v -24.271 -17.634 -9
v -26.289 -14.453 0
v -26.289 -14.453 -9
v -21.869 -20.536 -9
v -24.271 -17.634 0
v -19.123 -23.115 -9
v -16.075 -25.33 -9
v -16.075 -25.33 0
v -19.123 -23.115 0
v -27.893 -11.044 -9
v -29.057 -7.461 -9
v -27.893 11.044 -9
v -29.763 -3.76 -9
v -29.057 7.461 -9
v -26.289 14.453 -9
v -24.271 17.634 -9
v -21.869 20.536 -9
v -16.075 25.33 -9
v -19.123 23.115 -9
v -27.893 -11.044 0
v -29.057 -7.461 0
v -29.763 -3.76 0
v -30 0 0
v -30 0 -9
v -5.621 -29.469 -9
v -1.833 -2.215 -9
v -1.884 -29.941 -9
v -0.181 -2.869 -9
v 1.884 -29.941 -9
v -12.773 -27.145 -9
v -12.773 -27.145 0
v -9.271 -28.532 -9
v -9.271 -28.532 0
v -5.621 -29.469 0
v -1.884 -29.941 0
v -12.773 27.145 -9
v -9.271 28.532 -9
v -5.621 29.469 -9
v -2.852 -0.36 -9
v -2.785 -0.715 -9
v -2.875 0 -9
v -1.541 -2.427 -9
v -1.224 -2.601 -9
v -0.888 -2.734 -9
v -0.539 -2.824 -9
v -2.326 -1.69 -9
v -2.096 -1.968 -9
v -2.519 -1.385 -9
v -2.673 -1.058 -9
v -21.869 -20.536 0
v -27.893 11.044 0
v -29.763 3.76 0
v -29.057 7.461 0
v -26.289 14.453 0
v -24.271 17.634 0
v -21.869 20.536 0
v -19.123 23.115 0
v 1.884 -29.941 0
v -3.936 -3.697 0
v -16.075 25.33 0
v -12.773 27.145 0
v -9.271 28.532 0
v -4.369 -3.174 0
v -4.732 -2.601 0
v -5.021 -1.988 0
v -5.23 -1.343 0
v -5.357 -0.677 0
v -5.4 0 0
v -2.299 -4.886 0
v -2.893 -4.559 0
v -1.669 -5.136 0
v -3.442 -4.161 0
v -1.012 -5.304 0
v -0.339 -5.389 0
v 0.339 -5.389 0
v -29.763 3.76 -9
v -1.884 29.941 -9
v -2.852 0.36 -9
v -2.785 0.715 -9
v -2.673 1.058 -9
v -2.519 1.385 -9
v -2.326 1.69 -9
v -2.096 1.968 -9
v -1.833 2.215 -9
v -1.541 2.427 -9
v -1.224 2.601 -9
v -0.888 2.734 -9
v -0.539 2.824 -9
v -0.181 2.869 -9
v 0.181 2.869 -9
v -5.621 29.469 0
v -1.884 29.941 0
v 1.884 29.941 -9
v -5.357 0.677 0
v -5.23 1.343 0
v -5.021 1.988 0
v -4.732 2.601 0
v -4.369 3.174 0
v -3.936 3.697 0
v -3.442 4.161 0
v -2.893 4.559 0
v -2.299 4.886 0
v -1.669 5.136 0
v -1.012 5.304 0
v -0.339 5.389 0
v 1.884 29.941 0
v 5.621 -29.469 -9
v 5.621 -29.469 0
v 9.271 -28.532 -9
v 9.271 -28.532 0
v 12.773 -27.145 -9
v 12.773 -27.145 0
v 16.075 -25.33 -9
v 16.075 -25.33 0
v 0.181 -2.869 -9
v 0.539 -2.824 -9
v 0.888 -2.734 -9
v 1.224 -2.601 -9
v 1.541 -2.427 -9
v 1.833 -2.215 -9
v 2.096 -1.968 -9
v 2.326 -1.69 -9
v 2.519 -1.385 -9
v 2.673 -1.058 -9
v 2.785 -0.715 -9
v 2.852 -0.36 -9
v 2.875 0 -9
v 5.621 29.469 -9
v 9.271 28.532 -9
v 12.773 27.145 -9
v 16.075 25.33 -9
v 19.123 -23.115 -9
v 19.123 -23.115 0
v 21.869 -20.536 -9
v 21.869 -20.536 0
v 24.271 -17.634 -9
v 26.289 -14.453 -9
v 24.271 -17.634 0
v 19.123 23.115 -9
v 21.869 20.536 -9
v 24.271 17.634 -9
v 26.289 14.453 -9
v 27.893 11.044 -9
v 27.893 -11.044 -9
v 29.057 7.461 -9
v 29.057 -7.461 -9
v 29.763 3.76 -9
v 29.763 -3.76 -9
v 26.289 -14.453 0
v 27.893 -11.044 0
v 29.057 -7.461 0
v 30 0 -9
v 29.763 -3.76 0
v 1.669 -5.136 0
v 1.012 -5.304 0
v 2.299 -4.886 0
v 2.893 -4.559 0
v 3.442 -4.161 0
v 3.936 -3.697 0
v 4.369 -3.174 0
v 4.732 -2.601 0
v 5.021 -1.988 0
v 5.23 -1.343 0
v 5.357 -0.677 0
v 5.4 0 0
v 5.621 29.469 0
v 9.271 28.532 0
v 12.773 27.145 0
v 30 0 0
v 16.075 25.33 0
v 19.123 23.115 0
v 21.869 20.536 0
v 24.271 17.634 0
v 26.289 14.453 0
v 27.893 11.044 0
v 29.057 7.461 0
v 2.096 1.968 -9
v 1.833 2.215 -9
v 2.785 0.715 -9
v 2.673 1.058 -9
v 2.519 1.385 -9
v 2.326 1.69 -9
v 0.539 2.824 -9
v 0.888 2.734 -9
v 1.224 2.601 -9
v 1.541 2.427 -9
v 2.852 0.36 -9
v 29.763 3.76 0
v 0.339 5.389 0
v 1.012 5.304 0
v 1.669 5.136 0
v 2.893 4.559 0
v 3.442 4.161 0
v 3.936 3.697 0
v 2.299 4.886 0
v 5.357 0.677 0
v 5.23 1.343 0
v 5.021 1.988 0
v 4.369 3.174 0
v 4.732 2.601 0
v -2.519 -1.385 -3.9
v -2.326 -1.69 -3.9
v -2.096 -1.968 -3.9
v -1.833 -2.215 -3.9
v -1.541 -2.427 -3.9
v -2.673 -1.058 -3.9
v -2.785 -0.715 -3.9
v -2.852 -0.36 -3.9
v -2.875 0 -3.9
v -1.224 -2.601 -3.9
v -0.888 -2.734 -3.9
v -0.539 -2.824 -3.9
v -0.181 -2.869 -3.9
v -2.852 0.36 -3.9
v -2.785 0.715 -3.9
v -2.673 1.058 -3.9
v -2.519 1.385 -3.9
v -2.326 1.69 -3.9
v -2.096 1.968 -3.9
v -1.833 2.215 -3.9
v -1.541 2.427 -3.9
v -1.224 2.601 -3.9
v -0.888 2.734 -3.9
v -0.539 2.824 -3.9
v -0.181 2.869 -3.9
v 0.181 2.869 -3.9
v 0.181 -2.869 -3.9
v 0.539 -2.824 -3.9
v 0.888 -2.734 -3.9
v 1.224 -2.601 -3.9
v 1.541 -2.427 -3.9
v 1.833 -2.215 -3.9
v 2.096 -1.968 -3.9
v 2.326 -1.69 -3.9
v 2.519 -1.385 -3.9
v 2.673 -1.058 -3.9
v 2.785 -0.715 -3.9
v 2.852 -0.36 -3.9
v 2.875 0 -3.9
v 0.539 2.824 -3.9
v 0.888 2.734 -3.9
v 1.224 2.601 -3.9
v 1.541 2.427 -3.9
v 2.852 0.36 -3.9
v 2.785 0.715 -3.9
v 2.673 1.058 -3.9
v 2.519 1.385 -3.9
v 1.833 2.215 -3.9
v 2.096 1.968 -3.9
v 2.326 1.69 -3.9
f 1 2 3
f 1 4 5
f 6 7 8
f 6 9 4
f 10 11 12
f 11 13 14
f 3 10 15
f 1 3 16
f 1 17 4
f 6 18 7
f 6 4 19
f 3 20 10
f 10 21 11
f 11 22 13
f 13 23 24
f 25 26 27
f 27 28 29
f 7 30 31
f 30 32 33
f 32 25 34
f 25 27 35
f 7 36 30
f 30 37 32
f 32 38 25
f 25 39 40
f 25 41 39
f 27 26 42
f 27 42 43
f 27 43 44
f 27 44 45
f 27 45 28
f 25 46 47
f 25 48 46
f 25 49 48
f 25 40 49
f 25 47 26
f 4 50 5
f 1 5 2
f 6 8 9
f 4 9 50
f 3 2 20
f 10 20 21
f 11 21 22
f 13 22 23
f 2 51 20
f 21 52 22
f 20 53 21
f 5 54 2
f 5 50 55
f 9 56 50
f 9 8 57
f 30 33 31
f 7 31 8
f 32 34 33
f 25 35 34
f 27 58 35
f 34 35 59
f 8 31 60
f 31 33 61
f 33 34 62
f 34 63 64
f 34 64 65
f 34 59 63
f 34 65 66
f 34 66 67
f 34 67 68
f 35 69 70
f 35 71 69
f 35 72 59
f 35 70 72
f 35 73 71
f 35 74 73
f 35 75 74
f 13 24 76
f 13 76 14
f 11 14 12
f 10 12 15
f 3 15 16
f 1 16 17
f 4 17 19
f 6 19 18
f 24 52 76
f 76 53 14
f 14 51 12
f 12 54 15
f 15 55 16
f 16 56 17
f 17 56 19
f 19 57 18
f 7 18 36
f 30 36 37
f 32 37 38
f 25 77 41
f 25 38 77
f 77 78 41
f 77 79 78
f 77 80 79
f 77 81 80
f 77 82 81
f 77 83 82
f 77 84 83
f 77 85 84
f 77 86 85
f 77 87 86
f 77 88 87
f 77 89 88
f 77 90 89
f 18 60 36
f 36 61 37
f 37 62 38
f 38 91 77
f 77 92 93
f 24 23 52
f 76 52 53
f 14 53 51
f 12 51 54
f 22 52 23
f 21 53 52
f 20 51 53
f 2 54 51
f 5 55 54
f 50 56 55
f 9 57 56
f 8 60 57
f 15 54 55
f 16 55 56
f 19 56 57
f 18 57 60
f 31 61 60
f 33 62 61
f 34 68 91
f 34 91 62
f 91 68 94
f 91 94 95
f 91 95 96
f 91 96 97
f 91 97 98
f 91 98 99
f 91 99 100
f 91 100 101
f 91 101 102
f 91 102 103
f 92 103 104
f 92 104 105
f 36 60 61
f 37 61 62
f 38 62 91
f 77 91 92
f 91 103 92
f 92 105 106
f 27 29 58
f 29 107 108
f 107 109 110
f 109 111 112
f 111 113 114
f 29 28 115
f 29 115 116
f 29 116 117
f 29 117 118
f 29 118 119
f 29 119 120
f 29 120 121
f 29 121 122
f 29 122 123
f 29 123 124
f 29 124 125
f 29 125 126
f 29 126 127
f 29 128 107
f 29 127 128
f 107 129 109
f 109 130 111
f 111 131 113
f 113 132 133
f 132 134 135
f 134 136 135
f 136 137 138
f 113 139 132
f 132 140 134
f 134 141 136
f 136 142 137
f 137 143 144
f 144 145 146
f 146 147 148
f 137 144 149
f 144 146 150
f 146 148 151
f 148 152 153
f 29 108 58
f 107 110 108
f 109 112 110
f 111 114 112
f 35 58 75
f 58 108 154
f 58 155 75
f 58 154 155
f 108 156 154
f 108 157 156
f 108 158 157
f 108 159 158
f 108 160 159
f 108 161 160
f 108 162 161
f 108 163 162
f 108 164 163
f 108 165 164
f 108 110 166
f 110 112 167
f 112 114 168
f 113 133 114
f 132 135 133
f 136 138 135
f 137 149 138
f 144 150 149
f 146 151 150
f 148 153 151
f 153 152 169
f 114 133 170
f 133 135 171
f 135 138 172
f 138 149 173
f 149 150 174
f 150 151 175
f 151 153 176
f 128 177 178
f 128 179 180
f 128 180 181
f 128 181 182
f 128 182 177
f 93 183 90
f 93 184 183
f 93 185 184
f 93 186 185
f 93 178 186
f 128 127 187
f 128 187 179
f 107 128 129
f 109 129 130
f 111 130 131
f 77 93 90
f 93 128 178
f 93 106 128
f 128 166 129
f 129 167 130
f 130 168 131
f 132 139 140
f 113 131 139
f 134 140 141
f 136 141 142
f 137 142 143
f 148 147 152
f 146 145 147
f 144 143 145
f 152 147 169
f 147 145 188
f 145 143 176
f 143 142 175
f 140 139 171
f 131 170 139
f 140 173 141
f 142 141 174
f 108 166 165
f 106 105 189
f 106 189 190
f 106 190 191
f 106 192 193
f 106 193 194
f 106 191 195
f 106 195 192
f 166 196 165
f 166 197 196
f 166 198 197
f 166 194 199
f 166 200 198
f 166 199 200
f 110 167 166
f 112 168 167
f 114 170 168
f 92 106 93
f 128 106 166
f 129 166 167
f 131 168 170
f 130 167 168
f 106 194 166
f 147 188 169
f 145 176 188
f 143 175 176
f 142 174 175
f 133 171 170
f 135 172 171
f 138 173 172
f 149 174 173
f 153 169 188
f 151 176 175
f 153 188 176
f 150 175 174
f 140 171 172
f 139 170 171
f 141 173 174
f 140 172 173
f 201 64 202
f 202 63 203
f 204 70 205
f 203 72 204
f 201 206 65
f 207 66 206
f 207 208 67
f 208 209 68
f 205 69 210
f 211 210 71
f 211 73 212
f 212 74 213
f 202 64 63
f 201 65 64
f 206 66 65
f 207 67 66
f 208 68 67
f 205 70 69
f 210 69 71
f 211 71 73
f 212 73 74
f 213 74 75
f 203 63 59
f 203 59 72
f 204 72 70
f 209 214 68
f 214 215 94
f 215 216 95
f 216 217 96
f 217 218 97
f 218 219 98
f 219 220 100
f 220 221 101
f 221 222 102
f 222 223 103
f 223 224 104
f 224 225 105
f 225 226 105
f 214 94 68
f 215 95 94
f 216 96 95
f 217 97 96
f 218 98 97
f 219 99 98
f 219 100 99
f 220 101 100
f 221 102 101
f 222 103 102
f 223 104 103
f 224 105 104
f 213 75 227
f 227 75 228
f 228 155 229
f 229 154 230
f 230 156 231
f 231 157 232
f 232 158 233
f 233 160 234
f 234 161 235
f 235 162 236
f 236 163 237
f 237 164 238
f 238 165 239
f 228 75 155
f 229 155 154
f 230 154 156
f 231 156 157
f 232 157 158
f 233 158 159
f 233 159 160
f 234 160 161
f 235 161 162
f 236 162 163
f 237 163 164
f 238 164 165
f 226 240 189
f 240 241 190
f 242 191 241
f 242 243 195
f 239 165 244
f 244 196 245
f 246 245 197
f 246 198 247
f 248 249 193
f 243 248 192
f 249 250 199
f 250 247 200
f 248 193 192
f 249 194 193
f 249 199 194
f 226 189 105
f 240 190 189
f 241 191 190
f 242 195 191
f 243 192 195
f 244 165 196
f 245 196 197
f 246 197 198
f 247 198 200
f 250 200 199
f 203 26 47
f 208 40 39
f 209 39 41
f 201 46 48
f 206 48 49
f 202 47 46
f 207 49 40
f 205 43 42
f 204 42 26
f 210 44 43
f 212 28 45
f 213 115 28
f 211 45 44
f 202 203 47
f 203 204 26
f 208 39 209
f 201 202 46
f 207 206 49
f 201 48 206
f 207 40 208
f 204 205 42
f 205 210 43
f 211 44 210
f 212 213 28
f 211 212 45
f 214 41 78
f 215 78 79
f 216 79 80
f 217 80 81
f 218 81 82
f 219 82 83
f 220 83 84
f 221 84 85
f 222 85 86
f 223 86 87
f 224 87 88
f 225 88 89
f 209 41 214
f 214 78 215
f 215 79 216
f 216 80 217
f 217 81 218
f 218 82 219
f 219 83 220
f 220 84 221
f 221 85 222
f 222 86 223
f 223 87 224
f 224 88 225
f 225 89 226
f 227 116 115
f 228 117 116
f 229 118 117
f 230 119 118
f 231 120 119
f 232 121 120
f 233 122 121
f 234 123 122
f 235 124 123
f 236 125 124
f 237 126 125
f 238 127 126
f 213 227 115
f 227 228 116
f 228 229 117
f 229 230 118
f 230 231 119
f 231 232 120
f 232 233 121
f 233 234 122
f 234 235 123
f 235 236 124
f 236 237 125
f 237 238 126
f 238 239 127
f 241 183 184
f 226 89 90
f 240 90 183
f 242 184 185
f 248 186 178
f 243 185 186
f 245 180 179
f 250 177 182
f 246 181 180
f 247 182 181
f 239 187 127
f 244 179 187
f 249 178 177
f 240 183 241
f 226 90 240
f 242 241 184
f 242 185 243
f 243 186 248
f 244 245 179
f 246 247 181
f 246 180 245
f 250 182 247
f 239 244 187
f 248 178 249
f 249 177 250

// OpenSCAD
$fn = 50;


difference() {
	union() {
		translate(v = [0, 0, -9.0000000000]) {
			cylinder(h = 9, r = 30.0000000000);
		}
		#translate(v = [0, 0, -12.0000000000]) {
			cylinder(h = 12, r = 2.8750000000);
		}
	}
	union() {
		translate(v = [0, 0, 0]) {
			rotate(a = [0, 0, 0]) {
				difference() {
					union() {
						translate(v = [0, 0, -12.0000000000]) {
							cylinder(h = 12, r = 2.6000000000);
						}
						translate(v = [0, 0, -3.9000000000]) {
							cylinder(h = 3.9000000000, r1 = 2.8750000000, r2 = 5.4000000000);
						}
						translate(v = [0, 0, -12.0000000000]) {
							cylinder(h = 12, r = 2.8750000000);
						}
						translate(v = [0, 0, -12.0000000000]) {
							cylinder(h = 12, r = 2.6000000000);
						}
					}
					union();
				}
			}
		}
	}
}
